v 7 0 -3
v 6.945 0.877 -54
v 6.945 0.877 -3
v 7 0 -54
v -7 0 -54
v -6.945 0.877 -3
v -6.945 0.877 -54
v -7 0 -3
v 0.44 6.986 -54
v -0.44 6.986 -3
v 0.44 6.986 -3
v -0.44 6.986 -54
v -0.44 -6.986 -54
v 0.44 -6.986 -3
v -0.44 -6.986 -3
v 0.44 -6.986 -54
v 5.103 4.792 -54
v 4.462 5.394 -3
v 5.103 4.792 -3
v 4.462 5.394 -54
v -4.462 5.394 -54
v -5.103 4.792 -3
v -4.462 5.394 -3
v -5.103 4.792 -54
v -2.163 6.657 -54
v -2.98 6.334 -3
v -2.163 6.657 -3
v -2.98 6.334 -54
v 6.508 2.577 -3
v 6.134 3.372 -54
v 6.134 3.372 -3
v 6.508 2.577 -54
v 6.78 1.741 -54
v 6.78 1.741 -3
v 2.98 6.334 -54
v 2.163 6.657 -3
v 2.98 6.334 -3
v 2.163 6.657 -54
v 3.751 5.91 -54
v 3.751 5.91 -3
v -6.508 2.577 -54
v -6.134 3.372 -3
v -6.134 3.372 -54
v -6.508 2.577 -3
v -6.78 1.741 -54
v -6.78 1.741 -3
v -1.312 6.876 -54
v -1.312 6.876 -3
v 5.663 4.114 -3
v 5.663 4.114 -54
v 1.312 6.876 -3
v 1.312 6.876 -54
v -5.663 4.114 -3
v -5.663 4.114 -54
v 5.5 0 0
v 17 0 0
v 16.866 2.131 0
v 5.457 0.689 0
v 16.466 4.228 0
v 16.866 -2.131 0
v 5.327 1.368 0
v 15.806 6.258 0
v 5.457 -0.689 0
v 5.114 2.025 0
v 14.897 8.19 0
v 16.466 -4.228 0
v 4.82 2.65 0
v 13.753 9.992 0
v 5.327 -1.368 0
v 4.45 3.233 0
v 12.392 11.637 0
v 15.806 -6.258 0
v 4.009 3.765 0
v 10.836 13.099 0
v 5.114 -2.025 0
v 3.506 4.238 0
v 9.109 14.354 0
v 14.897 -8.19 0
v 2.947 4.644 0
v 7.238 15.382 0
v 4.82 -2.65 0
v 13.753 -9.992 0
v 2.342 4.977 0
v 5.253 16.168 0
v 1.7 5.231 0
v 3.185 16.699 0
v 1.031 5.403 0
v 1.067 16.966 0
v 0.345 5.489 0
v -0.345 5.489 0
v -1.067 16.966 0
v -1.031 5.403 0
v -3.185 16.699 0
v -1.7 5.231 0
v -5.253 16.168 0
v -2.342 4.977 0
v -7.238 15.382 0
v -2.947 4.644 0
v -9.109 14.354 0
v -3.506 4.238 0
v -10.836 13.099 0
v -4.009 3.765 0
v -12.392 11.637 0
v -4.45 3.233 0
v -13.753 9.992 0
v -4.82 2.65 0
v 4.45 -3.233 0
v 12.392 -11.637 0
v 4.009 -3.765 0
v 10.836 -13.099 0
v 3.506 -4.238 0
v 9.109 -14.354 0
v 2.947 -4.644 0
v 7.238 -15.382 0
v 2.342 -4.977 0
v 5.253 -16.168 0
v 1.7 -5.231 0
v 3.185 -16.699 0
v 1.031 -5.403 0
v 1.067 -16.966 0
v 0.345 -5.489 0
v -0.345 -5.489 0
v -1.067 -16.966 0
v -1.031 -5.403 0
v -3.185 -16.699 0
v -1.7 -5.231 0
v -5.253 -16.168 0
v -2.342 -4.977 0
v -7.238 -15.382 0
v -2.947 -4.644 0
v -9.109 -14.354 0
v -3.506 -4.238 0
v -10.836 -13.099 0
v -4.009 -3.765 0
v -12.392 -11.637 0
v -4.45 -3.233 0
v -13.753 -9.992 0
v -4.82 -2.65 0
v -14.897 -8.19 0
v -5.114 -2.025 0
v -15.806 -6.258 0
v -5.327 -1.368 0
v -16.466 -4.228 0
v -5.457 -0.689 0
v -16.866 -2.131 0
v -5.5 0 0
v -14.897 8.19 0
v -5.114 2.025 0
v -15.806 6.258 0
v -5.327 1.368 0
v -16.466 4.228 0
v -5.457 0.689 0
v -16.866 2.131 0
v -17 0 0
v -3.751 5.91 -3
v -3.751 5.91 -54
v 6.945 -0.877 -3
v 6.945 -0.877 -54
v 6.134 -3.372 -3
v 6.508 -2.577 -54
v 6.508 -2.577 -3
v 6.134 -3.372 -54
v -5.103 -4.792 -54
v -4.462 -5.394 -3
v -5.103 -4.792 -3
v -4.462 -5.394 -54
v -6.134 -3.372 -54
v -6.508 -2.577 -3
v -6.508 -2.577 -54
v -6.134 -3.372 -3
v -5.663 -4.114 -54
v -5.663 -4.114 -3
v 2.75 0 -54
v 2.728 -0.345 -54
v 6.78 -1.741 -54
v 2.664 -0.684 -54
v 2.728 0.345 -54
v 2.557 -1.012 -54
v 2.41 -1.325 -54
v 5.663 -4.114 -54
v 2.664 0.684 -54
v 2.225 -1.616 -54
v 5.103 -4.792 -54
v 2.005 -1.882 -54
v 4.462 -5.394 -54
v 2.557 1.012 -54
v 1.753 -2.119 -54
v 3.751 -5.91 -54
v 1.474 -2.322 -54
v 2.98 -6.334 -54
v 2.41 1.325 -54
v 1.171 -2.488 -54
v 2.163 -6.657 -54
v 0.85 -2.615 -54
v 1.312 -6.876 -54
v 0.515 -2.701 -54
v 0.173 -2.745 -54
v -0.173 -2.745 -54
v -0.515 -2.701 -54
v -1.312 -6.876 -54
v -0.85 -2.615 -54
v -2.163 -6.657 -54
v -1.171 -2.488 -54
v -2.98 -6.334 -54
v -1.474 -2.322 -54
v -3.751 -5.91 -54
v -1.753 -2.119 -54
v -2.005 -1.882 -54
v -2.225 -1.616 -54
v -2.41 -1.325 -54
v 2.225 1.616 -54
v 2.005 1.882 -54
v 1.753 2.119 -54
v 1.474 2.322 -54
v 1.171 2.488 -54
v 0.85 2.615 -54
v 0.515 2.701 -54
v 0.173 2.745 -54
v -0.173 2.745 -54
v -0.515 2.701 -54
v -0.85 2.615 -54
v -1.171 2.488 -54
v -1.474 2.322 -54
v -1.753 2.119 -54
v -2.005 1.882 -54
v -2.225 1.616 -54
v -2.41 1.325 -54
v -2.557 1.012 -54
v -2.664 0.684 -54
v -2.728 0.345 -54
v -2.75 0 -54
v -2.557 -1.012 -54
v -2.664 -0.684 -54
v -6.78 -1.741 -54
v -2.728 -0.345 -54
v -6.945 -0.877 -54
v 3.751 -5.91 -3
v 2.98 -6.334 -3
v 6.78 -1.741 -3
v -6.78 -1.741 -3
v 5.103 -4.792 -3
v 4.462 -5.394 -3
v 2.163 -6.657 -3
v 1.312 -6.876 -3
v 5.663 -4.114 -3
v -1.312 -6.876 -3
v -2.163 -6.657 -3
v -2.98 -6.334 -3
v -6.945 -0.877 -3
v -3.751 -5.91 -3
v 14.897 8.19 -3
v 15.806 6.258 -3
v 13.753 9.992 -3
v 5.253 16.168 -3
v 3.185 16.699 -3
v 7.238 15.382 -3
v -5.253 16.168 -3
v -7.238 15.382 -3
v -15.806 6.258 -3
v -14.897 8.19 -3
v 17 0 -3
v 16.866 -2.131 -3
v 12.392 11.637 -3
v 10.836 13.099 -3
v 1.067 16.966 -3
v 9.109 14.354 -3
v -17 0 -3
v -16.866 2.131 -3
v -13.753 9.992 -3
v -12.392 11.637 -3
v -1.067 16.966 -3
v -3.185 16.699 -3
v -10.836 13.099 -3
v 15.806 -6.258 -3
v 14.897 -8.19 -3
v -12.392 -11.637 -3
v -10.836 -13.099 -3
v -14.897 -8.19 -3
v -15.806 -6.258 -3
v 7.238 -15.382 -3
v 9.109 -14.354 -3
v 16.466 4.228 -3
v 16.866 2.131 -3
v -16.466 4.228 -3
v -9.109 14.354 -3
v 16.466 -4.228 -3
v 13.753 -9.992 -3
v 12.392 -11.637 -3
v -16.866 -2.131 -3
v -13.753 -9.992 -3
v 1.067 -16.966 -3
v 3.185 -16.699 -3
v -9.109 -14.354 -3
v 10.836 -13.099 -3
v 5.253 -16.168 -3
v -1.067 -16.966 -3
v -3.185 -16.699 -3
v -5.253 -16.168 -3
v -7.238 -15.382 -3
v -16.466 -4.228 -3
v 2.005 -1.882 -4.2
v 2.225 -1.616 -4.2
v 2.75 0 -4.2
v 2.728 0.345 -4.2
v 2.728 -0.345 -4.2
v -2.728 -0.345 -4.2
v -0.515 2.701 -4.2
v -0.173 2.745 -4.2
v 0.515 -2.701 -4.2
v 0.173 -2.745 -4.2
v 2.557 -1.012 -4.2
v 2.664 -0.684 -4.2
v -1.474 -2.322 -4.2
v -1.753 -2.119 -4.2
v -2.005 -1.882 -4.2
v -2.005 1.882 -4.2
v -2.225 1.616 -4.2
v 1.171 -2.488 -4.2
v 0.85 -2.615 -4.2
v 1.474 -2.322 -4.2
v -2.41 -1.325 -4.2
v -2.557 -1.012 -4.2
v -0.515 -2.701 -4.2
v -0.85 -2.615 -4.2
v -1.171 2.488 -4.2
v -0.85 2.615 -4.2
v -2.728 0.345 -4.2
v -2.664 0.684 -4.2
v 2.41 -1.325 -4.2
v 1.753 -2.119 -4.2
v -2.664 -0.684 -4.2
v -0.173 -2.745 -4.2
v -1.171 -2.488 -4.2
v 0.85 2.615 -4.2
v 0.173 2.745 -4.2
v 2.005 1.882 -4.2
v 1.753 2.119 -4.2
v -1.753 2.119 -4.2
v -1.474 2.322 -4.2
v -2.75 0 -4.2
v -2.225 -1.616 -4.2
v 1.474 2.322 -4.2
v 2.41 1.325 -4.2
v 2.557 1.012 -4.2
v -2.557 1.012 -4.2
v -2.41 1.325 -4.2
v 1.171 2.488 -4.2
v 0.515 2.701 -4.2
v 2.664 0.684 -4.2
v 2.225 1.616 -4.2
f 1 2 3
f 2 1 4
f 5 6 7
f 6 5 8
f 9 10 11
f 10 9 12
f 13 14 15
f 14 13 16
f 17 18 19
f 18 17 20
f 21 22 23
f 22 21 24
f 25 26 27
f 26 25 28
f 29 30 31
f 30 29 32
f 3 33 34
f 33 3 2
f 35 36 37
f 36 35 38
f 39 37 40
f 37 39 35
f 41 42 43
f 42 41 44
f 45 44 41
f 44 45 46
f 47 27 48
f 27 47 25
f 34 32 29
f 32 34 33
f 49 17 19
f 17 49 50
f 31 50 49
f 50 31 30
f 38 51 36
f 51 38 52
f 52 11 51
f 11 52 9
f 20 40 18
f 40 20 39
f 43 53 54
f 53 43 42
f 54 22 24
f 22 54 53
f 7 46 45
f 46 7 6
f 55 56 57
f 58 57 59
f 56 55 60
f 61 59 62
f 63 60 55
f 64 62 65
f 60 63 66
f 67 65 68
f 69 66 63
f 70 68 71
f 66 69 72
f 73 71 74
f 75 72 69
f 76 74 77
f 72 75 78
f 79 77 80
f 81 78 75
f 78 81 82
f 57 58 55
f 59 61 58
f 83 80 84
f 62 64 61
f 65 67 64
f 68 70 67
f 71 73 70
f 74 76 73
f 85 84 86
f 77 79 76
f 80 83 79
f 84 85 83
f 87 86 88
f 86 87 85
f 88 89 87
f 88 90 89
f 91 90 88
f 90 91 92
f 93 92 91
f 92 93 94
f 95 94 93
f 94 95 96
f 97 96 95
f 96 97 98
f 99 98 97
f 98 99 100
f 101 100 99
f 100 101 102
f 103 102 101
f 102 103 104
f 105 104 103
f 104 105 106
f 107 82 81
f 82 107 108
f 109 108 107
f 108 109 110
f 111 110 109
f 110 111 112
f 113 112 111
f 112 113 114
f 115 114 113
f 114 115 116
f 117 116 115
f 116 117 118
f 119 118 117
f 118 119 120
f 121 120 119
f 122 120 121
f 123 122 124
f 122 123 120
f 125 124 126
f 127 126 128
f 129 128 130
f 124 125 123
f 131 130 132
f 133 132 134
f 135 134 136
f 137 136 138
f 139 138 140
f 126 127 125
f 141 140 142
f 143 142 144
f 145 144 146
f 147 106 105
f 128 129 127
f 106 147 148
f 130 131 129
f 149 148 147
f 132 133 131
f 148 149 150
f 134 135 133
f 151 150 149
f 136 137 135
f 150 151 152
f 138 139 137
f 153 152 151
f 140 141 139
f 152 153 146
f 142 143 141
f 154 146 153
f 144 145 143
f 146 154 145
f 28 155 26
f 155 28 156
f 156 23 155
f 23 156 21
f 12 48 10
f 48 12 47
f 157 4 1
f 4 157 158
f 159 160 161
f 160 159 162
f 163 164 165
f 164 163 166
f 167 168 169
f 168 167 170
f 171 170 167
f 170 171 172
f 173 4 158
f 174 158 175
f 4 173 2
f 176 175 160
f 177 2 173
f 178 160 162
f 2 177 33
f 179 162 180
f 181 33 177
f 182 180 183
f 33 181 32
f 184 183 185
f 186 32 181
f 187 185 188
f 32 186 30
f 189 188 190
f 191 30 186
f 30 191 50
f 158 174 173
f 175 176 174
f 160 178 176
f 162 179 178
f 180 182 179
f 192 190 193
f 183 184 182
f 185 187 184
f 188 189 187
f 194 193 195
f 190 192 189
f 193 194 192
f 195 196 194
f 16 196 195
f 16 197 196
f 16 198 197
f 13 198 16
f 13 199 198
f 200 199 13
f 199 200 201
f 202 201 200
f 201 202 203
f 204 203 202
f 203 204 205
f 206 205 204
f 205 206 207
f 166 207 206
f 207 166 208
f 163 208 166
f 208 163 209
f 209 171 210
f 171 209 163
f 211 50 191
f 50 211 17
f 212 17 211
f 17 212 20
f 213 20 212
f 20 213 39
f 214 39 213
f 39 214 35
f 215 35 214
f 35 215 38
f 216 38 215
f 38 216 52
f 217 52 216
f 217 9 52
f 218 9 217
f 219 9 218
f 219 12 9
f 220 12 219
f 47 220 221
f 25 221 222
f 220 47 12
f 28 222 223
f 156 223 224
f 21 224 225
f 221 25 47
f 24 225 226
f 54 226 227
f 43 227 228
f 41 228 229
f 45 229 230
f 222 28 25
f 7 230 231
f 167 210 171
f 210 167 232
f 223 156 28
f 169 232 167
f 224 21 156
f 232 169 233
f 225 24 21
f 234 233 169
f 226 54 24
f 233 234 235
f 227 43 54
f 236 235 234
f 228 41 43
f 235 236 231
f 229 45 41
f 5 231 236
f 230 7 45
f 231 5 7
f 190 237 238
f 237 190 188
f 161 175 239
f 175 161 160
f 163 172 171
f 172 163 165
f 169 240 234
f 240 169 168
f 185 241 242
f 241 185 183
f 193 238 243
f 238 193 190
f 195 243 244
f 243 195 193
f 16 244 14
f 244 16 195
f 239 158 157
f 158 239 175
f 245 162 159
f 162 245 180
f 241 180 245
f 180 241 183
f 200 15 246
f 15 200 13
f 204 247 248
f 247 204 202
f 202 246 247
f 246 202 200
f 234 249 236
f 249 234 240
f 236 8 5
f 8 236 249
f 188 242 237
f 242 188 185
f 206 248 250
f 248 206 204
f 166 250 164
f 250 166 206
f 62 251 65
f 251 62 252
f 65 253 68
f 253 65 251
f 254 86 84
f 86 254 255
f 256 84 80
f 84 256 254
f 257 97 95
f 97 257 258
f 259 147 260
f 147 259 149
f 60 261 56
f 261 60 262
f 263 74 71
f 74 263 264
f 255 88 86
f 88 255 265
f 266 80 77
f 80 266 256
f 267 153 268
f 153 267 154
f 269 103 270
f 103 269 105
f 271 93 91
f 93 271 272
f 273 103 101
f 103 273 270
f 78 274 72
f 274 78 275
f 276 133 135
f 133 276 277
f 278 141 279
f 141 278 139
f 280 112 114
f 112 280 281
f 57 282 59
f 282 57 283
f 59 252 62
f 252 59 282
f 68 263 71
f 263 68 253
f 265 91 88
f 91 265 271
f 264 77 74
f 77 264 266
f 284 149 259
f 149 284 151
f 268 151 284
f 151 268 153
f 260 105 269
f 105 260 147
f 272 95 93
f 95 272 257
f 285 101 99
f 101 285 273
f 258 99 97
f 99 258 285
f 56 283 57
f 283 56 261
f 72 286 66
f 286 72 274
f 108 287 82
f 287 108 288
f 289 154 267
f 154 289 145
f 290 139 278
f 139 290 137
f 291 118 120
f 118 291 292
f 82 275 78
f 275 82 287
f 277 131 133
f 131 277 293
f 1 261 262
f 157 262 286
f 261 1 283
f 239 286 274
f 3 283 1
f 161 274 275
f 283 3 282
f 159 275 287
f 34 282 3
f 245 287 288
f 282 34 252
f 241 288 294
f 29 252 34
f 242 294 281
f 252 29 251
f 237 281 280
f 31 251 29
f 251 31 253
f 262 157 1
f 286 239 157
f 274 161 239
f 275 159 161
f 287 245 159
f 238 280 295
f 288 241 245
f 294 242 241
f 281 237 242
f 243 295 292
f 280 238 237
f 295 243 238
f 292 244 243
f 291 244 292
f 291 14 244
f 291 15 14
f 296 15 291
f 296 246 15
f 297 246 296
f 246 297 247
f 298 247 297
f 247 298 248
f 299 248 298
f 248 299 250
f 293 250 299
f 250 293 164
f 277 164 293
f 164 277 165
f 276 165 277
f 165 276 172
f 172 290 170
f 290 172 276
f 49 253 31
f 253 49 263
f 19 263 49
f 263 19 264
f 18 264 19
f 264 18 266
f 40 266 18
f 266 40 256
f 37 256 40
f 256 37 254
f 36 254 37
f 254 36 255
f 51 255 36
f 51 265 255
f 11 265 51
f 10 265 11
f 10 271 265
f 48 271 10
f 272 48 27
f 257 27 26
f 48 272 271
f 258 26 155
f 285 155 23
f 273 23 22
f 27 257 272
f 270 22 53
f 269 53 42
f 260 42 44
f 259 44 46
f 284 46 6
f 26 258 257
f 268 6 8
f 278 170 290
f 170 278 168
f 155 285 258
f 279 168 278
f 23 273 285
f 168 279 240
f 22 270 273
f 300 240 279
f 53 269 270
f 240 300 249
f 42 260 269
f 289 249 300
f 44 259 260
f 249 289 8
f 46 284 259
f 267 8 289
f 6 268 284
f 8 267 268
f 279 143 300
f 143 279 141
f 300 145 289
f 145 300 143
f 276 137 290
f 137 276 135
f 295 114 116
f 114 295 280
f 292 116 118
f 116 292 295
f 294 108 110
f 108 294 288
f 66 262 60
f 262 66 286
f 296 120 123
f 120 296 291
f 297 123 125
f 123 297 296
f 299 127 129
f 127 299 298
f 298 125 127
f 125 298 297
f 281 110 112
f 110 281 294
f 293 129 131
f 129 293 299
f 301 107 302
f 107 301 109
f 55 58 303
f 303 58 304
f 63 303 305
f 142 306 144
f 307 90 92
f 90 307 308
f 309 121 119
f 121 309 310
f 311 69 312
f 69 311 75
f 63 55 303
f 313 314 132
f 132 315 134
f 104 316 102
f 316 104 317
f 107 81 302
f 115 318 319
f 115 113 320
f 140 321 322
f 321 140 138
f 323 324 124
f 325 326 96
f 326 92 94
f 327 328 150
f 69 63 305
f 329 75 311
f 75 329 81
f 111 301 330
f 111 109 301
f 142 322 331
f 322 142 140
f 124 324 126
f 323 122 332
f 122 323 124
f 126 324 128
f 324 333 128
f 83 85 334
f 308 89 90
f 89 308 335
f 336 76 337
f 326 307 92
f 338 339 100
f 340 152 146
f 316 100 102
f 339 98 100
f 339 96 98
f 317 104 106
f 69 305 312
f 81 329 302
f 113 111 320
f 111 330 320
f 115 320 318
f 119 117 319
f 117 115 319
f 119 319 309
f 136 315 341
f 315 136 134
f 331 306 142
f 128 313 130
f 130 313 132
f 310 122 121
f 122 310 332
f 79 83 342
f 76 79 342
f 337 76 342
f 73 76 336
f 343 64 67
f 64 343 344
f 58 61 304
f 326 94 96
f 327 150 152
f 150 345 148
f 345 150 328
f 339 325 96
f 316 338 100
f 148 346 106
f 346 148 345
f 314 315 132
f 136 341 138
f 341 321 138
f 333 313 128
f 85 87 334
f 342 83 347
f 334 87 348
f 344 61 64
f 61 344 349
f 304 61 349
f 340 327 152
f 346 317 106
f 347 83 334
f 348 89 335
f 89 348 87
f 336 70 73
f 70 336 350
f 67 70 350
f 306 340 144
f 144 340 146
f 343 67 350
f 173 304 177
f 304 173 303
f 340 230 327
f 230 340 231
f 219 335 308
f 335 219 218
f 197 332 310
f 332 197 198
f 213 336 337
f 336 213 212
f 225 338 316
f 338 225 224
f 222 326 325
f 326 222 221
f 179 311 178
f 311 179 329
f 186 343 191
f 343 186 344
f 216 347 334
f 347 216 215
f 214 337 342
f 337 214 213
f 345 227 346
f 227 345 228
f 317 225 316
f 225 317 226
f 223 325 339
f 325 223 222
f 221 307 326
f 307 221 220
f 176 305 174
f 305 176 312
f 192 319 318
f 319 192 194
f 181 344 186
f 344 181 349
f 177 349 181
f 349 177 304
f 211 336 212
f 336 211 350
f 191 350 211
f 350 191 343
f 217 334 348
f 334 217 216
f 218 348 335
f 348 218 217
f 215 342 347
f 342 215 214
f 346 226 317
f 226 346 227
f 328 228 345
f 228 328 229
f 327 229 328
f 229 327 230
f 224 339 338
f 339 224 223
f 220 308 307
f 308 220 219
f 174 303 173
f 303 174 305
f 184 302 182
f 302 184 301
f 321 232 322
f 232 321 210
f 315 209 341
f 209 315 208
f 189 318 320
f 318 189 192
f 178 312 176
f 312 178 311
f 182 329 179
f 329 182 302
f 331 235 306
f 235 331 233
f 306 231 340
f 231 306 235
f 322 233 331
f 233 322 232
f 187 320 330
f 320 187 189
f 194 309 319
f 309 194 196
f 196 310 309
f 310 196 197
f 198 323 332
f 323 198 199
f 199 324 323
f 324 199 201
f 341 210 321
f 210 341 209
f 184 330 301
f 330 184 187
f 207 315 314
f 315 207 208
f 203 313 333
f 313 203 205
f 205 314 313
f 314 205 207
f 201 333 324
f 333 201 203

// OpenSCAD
$fn = 50;


difference() {
	union() {
		translate(v = [0, 0, -54.0000000000]) {
			cylinder(h = 54, r = 7.0000000000);
		}
		translate(v = [0, 0, -3.0000000000]) {
			cylinder(h = 3, r = 17.0000000000);
		}
	}
	union() {
		translate(v = [0, 0, 0]) {
			rotate(a = [0, 0, 0]) {
				difference() {
					union() {
						#translate(v = [0, 0, -54.0000000000]) {
							cylinder(h = 54, r = 2.2500000000);
						}
						#translate(v = [0, 0, -4.2000000000]) {
							cylinder(h = 4.2000000000, r = 7.0000000000, r1 = 2.7500000000, r2 = 5.5000000000);
						}
						#translate(v = [0, 0, -54.0000000000]) {
							cylinder(h = 54, r = 2.7500000000);
						}
						#translate(v = [0, 0, -54.0000000000]) {
							cylinder(h = 54, r = 2.2500000000);
						}
					}
					union();
				}
			}
		}
	}
}
